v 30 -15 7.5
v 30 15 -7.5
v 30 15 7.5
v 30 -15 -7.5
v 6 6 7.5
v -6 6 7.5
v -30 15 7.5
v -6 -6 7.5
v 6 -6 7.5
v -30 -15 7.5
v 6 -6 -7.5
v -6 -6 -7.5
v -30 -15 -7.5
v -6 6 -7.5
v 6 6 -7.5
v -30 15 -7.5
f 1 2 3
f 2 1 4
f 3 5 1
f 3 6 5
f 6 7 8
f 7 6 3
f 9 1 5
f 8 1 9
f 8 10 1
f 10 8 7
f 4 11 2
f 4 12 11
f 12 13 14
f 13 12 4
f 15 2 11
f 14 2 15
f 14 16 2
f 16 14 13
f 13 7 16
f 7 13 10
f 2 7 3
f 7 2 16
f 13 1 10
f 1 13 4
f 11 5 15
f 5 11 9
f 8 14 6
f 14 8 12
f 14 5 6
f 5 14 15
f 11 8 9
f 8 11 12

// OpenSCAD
// Define dimensions for the rectangular block
block_length = 60;  // Length of the block
block_width = 30;   // Width of the block
block_height = 15;  // Height of the block (increased to match the original model)

// Define dimensions for the square hole
hole_size = 12;     // Side length of the square hole (increased to match the original model)

// Create the rectangular block with a square hole
difference() {
    // Main rectangular block
    cube([block_length, block_width, block_height], center = true);
    
    // Square hole
    translate([0, 0, -block_height / 2])  // Center the hole vertically
        cube([hole_size, hole_size, block_height * 2], center = true);
}
